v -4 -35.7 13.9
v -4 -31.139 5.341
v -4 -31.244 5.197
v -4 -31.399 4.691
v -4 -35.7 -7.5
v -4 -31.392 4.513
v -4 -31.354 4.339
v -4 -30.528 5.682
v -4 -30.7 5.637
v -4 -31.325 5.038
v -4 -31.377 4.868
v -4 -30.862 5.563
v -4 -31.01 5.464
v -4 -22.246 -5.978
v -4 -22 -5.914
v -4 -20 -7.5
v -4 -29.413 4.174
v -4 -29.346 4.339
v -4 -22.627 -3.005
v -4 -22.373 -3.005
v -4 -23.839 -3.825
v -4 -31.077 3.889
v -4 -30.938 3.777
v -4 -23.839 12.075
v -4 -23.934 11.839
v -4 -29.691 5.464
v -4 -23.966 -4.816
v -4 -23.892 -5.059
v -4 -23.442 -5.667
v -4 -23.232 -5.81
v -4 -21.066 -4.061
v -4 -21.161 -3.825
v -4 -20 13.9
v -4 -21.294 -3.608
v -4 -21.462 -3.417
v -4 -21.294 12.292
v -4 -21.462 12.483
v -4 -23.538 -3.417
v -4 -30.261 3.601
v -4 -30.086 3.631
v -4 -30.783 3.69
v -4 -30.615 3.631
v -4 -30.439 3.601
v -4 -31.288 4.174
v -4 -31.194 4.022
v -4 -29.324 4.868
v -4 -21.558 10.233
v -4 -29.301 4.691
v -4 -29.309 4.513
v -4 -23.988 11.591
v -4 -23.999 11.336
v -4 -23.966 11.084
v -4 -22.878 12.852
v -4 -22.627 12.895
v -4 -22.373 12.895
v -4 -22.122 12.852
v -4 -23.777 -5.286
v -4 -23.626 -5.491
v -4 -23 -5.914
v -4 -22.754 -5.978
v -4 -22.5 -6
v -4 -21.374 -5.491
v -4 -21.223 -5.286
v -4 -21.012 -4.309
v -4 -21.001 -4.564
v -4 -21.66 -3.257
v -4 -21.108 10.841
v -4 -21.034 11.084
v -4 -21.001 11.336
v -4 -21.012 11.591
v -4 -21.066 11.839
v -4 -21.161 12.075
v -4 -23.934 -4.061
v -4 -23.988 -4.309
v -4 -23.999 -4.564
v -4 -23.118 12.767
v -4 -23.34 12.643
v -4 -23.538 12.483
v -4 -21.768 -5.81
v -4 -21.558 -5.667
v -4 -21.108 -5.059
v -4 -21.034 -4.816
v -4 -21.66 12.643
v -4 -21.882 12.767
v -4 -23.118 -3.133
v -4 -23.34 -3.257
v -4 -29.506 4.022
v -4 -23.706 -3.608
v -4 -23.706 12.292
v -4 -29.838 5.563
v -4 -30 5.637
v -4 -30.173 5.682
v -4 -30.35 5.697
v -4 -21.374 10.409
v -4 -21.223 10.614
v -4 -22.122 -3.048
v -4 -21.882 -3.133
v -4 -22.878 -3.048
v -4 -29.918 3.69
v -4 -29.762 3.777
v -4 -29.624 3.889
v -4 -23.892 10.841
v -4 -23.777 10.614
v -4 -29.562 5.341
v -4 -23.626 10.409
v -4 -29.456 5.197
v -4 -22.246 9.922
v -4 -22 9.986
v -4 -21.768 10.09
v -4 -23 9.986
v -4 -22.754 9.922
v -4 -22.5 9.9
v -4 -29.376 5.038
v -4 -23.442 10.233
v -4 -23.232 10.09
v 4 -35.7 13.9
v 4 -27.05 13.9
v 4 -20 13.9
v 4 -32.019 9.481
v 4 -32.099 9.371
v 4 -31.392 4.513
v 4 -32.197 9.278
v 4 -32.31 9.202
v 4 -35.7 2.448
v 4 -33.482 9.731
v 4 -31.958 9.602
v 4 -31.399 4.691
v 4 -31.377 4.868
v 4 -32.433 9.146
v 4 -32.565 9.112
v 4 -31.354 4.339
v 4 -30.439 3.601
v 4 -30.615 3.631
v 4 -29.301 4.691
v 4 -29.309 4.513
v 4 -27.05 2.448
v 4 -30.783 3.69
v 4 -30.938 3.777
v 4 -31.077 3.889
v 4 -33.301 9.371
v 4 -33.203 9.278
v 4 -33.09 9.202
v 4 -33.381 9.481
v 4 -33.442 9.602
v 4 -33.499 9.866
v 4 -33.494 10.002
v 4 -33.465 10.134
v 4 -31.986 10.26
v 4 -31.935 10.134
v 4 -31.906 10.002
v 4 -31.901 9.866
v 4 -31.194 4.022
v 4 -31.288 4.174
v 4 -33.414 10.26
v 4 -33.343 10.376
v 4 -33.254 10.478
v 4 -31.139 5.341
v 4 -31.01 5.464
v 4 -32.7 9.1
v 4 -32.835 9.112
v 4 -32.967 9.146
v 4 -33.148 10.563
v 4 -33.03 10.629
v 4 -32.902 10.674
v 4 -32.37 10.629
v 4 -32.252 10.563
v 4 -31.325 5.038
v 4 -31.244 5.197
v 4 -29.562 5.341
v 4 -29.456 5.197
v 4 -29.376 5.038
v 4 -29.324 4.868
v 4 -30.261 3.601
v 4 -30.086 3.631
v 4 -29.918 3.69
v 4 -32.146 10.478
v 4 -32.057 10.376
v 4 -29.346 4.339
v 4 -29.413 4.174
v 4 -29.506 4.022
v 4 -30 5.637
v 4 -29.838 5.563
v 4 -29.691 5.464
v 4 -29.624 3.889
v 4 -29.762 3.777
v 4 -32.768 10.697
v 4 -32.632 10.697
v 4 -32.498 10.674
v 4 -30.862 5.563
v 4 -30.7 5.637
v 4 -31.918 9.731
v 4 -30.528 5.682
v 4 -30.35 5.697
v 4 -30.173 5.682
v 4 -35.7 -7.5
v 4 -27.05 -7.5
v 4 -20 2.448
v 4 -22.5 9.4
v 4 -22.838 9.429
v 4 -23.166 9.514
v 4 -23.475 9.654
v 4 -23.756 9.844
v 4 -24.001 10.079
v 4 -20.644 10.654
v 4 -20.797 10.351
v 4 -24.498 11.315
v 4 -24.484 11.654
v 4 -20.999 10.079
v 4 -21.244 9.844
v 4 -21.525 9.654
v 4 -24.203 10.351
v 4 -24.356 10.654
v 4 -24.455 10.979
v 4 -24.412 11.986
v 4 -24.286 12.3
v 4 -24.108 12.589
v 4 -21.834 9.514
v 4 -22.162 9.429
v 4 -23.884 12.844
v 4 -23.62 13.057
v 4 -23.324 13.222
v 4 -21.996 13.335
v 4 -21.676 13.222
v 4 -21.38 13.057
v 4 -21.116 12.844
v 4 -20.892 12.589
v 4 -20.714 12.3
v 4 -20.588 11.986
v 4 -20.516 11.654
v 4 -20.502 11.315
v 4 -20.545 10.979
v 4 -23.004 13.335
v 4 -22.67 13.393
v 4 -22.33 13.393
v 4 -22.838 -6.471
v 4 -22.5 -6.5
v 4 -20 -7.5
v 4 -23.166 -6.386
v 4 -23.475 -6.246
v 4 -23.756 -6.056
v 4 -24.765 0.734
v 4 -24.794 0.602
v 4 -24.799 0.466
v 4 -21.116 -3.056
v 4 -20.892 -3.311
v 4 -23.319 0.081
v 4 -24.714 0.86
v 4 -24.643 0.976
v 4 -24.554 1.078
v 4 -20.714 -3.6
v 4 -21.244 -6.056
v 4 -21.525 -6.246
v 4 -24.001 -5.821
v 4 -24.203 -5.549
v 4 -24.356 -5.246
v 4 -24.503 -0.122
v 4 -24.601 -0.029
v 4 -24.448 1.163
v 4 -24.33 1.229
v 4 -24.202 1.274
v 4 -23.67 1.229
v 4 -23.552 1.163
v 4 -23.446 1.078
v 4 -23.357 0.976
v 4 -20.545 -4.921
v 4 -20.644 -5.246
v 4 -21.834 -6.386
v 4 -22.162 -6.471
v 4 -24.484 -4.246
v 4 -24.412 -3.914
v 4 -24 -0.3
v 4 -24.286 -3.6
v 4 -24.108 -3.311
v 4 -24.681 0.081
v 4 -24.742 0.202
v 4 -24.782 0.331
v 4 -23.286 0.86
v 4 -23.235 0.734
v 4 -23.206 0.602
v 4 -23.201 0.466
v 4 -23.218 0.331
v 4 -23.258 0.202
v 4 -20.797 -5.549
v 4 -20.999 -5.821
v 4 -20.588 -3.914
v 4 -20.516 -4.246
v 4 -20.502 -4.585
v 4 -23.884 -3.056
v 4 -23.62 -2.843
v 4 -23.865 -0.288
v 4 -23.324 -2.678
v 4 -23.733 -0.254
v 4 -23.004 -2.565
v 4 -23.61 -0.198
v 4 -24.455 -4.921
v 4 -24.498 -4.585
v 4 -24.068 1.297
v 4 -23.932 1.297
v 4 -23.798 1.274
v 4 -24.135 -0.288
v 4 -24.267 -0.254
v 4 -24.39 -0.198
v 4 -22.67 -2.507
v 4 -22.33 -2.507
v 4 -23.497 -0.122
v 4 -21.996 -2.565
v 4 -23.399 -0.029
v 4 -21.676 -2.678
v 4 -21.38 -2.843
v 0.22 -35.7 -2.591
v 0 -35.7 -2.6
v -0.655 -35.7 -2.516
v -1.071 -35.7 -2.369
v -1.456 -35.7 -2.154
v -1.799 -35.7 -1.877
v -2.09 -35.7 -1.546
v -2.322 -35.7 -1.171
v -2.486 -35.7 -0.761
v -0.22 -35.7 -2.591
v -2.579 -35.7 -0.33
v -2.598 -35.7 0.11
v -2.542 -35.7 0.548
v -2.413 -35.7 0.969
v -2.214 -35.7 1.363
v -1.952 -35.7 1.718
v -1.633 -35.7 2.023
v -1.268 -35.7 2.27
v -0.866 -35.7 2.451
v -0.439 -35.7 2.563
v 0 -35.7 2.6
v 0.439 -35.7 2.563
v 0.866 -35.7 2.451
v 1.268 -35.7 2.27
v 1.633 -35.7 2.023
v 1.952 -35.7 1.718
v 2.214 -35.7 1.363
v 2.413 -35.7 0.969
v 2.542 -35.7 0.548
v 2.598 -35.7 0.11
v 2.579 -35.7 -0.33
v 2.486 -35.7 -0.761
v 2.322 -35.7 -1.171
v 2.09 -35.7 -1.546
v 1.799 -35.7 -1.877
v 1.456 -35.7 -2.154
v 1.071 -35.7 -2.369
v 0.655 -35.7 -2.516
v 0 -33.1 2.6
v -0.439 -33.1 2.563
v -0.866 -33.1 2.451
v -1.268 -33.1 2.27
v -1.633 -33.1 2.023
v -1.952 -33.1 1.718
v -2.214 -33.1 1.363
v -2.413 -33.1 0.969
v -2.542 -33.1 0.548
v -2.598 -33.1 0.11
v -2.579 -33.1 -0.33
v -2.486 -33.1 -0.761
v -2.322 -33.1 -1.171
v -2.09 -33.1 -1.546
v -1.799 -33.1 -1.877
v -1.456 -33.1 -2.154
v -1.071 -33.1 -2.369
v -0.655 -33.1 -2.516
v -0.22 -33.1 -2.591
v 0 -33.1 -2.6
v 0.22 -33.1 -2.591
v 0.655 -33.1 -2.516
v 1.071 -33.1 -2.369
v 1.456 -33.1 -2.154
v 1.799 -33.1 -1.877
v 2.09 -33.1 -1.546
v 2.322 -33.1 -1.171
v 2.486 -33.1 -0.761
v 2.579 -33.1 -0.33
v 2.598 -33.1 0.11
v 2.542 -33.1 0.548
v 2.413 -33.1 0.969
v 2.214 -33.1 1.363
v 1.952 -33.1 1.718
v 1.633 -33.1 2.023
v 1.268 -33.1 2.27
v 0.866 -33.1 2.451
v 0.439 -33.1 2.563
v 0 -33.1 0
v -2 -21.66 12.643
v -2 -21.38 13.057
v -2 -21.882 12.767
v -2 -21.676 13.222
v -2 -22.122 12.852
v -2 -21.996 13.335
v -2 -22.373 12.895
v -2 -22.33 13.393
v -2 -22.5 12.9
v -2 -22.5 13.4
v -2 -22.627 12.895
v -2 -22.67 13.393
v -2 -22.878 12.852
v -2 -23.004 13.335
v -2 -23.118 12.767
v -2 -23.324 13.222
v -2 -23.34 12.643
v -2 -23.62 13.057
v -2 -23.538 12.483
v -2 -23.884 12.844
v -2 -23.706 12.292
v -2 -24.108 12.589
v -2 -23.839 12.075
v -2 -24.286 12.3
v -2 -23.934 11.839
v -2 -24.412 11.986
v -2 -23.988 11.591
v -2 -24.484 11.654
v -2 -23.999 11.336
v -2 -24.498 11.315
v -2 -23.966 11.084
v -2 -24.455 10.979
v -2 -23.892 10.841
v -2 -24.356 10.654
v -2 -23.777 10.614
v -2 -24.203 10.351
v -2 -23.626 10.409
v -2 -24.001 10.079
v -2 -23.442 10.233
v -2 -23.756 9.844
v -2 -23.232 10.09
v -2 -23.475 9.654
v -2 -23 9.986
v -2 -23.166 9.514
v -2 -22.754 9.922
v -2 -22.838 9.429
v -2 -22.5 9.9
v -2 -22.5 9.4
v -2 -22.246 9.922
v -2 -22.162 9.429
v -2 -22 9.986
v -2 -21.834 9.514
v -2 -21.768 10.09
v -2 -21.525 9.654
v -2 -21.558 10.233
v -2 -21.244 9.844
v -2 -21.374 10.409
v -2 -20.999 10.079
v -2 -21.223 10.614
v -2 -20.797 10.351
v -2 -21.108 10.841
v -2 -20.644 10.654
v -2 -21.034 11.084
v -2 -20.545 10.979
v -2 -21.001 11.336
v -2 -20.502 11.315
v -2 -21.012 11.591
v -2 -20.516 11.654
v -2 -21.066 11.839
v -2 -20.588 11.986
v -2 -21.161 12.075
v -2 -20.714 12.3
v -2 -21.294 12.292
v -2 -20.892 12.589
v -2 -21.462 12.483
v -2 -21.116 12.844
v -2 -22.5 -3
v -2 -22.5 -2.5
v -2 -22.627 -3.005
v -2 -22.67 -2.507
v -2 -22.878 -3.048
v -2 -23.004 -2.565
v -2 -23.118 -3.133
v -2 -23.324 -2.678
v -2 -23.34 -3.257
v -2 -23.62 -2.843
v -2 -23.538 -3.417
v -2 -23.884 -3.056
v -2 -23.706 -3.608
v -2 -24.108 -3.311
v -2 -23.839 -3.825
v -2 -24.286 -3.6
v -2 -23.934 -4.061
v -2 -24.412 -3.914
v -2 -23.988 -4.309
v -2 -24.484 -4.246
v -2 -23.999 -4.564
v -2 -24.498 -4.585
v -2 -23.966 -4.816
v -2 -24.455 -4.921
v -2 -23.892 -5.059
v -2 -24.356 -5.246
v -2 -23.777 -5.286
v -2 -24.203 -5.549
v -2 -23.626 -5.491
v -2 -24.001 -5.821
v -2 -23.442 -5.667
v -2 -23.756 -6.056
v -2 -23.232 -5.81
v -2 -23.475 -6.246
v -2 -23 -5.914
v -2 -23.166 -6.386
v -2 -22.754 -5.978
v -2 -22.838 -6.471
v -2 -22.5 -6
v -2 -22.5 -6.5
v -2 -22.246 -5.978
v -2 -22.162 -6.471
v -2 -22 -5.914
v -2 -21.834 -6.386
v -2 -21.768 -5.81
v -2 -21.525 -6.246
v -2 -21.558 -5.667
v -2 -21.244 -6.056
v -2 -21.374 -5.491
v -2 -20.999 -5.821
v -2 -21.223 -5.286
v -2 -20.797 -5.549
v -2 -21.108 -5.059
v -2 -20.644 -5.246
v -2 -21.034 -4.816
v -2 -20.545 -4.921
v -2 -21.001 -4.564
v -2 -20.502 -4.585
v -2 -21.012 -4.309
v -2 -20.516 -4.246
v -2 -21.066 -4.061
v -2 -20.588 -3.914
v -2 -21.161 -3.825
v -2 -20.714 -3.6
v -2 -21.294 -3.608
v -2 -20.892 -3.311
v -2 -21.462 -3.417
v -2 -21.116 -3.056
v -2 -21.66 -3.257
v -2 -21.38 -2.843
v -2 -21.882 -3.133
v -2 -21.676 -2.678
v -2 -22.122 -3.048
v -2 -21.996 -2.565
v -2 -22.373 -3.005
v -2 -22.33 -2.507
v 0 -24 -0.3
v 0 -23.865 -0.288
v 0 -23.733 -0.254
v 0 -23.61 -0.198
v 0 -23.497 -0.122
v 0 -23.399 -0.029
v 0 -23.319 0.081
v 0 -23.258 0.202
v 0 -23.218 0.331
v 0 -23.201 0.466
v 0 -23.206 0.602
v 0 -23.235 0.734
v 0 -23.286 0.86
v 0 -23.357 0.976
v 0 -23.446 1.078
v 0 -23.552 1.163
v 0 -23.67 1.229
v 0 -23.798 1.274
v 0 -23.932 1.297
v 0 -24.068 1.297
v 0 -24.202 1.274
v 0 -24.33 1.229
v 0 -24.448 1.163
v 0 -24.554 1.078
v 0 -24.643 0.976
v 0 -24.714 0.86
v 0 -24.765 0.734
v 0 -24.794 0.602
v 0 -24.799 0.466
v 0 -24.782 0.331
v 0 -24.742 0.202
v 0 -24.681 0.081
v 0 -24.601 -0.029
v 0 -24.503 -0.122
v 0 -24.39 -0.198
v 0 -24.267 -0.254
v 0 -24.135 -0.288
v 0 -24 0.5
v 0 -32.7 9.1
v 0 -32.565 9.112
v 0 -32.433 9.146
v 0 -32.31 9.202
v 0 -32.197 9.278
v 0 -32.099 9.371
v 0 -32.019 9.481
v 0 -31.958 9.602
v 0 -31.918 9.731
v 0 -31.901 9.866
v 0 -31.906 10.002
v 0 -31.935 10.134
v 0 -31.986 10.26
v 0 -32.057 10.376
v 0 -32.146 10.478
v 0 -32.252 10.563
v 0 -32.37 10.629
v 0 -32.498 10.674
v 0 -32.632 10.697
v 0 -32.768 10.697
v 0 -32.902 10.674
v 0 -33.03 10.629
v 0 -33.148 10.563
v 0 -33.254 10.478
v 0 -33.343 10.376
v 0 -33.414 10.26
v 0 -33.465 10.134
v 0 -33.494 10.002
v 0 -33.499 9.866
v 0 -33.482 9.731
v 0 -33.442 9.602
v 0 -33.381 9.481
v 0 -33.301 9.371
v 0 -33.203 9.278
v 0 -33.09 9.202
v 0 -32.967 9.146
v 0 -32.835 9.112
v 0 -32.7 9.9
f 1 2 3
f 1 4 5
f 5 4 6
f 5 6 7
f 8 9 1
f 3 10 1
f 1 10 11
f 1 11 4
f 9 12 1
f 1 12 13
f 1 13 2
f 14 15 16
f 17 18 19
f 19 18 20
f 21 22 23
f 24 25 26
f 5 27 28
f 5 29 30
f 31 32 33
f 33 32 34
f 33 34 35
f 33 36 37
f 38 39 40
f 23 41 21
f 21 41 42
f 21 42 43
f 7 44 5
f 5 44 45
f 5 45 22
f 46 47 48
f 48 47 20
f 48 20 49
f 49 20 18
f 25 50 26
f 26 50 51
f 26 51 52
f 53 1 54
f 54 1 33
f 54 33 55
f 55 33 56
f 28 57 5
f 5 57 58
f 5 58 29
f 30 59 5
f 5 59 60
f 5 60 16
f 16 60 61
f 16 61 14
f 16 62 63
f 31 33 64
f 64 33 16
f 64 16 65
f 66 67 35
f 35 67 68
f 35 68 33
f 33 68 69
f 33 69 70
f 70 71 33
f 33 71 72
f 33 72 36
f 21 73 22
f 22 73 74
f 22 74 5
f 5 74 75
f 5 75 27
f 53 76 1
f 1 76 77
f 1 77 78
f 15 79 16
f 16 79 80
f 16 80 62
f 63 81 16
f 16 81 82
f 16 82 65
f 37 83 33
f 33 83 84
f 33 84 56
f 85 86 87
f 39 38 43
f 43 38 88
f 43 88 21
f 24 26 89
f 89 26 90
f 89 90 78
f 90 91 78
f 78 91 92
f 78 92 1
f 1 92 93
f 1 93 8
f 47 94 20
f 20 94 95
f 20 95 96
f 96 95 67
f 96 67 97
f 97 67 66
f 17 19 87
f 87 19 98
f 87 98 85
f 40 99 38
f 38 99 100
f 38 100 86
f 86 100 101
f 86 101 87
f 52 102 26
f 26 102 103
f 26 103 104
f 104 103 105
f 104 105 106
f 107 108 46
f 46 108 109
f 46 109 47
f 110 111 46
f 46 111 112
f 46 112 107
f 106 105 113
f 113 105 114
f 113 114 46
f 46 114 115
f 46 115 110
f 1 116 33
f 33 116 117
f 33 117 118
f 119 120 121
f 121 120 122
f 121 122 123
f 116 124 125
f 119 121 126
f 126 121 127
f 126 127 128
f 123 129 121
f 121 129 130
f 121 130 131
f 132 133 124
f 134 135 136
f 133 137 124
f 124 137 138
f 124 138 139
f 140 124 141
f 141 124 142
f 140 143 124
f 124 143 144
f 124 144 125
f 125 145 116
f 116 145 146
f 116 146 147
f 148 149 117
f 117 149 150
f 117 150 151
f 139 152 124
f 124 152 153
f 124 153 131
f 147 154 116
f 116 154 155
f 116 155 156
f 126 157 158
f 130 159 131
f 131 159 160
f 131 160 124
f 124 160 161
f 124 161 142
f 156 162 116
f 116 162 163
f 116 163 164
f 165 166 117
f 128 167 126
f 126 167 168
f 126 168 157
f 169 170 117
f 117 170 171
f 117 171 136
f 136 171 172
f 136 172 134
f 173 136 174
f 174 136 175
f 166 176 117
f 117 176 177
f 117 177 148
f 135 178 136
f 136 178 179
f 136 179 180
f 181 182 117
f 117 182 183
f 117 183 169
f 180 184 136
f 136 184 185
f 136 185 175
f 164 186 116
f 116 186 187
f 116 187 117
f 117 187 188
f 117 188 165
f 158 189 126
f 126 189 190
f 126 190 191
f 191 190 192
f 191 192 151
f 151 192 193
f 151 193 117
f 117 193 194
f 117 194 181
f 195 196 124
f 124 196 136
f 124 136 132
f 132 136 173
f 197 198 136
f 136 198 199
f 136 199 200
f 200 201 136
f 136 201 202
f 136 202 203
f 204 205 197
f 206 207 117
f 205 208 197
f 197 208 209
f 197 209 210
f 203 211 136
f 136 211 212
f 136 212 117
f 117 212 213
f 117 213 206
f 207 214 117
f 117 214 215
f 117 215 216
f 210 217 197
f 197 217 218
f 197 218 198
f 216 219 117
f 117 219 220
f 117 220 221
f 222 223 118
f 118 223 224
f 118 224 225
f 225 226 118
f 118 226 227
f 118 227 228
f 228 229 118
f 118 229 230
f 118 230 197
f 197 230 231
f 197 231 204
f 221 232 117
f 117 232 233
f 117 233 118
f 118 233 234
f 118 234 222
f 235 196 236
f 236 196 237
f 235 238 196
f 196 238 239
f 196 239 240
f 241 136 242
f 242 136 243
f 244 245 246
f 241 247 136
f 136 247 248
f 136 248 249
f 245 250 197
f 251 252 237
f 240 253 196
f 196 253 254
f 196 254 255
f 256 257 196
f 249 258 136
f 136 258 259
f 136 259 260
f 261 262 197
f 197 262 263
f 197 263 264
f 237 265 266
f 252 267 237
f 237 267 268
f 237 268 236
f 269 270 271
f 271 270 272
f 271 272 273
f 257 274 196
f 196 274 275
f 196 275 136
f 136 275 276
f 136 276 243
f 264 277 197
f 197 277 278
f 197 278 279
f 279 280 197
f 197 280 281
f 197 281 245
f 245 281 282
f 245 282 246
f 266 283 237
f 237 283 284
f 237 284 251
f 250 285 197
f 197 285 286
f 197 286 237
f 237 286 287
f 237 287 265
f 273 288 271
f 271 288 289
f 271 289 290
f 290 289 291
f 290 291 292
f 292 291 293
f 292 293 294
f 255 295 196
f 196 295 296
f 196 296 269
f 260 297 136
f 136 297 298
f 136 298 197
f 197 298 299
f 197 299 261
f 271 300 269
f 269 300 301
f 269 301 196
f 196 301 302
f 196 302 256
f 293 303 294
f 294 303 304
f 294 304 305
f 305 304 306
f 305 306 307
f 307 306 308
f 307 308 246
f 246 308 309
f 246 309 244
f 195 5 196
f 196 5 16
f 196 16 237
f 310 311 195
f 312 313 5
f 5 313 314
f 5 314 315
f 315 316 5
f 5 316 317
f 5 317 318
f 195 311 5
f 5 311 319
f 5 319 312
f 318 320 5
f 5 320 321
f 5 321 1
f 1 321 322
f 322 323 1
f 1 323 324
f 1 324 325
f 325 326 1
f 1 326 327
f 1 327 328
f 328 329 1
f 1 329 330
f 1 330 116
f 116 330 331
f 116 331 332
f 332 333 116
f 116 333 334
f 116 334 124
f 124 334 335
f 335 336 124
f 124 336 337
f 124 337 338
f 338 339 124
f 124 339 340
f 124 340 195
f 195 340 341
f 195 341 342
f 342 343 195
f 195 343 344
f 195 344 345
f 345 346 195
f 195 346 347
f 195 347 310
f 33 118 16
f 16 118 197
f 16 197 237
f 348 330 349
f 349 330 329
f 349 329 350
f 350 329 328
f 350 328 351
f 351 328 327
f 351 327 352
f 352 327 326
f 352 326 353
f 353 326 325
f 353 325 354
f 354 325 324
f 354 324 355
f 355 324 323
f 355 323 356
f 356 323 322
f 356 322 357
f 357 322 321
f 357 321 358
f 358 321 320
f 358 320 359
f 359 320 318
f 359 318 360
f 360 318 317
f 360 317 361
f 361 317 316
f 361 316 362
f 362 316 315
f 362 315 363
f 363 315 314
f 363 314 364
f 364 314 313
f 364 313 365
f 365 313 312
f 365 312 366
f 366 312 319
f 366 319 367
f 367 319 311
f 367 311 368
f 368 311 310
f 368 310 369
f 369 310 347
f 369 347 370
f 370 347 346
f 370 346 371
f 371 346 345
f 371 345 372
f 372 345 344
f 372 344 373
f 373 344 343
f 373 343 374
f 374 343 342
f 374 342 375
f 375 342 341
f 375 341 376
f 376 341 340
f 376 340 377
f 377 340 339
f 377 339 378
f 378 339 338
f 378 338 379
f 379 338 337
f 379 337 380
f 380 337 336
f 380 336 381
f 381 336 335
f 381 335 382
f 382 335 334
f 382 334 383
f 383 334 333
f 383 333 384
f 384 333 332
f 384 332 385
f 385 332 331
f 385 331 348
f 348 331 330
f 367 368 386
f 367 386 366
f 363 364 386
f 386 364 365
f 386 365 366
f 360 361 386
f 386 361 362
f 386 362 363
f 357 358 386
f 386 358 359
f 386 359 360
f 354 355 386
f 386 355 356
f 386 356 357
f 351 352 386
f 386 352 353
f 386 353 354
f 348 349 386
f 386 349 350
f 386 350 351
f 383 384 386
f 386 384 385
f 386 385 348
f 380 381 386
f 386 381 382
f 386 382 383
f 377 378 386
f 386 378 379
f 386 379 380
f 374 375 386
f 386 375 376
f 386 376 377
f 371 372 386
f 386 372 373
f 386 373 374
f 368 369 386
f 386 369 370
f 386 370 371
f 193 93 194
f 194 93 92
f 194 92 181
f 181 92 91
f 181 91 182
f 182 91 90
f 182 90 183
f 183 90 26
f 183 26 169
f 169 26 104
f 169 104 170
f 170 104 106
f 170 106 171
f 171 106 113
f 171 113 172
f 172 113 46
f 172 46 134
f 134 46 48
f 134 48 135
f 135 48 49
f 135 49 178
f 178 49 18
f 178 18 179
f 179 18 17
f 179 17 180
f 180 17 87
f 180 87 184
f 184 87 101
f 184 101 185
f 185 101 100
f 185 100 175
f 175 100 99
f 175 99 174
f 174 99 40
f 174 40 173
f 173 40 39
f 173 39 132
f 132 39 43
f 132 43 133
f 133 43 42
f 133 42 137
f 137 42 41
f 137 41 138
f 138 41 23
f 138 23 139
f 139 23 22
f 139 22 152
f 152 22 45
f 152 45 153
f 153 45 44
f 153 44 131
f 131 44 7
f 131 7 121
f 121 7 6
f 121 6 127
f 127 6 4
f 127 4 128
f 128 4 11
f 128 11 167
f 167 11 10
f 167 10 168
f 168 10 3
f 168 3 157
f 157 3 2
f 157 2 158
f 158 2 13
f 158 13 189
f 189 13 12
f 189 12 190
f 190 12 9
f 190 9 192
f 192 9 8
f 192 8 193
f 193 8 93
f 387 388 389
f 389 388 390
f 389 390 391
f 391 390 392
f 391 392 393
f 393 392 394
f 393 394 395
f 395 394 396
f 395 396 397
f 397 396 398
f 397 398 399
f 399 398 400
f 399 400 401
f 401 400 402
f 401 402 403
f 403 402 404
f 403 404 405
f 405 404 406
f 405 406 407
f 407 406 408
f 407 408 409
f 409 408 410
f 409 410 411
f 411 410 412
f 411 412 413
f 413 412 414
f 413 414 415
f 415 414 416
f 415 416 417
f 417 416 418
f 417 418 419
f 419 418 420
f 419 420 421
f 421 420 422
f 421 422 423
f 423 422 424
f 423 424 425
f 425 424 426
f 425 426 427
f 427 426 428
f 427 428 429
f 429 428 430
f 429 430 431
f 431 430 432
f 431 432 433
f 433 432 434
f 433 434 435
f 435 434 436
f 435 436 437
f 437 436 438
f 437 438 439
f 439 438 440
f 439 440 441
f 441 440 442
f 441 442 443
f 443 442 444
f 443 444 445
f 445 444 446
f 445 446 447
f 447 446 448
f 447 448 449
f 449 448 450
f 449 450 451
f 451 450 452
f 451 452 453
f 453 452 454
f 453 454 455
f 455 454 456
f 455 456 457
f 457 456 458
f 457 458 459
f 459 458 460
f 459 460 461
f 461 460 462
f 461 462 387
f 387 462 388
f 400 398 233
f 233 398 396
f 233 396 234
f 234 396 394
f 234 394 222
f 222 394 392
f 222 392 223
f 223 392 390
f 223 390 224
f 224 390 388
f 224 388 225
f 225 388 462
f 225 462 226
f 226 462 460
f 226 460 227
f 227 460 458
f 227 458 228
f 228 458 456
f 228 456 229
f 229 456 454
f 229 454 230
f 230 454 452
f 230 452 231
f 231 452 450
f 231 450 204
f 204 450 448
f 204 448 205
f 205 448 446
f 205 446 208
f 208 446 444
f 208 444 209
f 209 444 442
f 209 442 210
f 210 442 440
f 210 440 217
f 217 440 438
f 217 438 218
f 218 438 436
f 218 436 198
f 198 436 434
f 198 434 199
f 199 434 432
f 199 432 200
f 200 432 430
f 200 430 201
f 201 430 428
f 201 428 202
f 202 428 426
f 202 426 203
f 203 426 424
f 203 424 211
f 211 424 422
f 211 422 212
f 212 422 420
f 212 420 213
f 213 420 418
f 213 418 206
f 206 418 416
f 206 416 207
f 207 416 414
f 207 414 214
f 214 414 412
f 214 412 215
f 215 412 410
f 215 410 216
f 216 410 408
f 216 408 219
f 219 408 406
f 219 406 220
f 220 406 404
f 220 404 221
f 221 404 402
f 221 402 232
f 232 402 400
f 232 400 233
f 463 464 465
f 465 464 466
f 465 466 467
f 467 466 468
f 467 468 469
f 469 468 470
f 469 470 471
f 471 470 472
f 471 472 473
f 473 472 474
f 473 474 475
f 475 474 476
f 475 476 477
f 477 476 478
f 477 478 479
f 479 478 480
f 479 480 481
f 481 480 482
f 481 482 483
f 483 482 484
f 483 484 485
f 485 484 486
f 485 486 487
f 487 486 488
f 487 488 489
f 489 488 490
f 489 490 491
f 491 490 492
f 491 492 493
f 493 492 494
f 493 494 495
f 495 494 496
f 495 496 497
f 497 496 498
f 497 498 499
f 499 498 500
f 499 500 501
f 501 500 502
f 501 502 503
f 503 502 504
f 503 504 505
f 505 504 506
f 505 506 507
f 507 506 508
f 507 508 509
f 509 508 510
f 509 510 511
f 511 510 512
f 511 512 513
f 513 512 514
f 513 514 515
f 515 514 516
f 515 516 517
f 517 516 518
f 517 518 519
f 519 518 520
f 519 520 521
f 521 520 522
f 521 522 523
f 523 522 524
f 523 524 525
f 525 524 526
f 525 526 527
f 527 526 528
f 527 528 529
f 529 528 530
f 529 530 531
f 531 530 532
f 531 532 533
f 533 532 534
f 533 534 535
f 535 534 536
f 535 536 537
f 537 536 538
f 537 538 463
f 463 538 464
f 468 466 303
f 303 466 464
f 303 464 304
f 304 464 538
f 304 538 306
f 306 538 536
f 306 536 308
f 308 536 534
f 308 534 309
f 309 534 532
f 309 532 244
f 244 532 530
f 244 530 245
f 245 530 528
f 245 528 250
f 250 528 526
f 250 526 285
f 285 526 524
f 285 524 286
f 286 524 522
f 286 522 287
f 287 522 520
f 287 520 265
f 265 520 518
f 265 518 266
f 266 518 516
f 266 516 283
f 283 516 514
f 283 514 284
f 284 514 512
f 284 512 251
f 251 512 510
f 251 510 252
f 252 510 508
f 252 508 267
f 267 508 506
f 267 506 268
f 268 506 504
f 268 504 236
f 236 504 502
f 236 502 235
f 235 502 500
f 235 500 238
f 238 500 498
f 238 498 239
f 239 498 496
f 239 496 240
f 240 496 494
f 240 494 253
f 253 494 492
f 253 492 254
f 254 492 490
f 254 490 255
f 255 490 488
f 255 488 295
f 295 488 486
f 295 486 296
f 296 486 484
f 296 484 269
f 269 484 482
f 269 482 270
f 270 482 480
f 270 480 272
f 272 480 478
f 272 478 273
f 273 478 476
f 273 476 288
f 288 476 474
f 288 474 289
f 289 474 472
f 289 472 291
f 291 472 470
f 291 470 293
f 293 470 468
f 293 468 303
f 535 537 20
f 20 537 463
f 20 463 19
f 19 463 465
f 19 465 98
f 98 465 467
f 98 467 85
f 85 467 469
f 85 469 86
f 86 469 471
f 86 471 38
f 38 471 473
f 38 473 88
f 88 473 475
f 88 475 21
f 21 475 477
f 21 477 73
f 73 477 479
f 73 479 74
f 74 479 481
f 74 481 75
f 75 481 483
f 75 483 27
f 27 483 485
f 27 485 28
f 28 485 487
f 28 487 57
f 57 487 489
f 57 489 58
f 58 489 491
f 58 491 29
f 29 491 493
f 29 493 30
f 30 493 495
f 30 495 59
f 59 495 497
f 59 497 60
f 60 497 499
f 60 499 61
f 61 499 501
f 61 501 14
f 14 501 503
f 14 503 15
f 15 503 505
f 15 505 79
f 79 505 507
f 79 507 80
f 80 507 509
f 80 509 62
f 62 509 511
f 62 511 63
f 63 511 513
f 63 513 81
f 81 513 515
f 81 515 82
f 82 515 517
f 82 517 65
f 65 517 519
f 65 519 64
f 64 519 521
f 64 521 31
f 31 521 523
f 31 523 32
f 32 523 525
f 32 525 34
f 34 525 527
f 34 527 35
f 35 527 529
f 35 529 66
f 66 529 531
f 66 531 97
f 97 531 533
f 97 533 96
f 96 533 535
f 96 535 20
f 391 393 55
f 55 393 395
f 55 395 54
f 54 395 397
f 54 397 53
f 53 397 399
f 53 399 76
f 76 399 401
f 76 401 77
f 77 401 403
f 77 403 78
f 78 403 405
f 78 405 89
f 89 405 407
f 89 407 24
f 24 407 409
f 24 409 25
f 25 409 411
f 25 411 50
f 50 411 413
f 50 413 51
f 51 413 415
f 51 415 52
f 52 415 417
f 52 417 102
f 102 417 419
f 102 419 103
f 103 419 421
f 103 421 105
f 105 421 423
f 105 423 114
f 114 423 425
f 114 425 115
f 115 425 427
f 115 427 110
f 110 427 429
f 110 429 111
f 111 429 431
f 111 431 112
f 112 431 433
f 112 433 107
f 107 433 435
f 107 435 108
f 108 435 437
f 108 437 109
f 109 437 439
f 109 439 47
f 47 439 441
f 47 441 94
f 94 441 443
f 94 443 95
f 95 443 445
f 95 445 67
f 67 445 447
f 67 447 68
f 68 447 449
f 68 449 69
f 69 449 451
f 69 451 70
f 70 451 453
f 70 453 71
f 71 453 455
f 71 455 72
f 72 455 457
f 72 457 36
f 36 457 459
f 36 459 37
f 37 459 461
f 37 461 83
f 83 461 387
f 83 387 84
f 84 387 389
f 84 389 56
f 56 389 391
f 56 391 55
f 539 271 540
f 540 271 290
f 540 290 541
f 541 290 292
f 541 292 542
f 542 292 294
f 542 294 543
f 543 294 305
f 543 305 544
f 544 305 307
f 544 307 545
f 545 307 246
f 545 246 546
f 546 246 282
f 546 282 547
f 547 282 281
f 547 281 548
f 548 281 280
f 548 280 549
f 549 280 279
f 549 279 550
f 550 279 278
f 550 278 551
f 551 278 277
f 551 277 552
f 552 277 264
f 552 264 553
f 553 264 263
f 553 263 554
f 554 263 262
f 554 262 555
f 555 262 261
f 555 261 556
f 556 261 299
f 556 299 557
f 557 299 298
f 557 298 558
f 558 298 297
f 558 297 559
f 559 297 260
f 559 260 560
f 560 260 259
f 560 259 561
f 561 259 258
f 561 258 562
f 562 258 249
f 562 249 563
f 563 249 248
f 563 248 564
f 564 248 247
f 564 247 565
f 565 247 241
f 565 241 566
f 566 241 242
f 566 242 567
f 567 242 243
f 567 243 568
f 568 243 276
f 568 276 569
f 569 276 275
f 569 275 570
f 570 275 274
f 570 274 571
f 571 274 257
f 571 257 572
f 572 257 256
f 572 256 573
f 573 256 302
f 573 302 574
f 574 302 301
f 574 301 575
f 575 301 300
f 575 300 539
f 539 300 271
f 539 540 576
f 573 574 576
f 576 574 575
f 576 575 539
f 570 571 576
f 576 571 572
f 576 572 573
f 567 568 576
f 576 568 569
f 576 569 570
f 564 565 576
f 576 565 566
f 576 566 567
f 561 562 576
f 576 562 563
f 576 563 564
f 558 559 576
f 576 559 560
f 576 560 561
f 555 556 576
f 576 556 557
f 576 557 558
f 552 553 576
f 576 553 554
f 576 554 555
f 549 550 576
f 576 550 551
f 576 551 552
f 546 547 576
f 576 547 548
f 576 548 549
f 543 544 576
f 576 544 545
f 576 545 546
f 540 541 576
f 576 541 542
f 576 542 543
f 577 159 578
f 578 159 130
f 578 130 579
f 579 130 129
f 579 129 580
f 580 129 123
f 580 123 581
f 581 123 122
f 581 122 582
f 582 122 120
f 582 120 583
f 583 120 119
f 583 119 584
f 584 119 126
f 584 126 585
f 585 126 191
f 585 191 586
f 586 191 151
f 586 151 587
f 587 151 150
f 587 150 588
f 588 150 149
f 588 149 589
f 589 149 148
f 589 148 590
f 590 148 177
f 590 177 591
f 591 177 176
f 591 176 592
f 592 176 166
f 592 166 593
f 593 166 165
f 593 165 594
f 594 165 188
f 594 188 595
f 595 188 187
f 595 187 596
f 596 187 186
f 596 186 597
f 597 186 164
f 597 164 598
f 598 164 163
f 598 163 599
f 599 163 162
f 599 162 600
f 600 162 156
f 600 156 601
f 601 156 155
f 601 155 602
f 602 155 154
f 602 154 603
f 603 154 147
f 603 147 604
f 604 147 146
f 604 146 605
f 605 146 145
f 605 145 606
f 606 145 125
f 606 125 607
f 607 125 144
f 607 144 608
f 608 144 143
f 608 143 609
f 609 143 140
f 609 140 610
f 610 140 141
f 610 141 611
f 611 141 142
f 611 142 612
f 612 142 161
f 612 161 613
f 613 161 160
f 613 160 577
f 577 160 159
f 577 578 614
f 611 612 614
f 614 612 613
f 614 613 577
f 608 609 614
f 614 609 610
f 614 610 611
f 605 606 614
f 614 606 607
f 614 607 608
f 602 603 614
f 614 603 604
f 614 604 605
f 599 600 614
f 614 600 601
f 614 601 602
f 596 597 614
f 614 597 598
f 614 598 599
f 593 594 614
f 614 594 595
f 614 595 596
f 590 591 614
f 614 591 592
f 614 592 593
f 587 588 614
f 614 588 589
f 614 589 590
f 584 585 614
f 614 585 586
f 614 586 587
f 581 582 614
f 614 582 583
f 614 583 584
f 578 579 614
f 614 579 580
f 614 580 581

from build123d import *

# Parameters (mm, degrees)
SKETCH_1_W          = 8
SKETCH_1_H          = 21.4
EXTRUDE_1_DEPTH     = 15.7
CUT_EXTRUDE_START   = 15.7
SKETCH_1_18_R       = 2.6
CUT_EXTRUDE_1_DEPTH = 2.6
SKETCH_2_R          = 1.05
CUT_EXTRUDE_2_DEPTH = 23.443261795
SKETCH_3_R          = 2
CUT_EXTRUDE_4_DEPTH = 6
SKETCH_3_4_R        = 1.5
CUT_EXTRUDE_5_DEPTH = 23.443261795
SKETCH_4_R          = 0.8
CUT_EXTRUDE_6_DEPTH = 4
SKETCH_5_W          = 20.288493166
SKETCH_5_H          = 31.298439213
CUT_EXTRUDE_7_DEPTH = 30.490676493


with BuildPart() as part:
    # 草图1 → 凸台-拉伸1 (new body)
    with BuildSketch(Plane(origin=(0, 0, 0), x_dir=(1, 0, 0), z_dir=(0, 1, 0))):
        with Locations((0, -3.2)):
            Rectangle(SKETCH_1_W, SKETCH_1_H)
    extrude(amount=EXTRUDE_1_DEPTH)

    # 草图1<18> → 切除-拉伸1 (cut)
    with BuildSketch(Plane(origin=(0, 0, 0), x_dir=(1, 0, 0), z_dir=(0, 1, 0)).offset(CUT_EXTRUDE_START)):
        with Locations(Location((0, 0, 0), (0, 0, 90))):
            Circle(SKETCH_1_18_R)
    extrude(amount=-CUT_EXTRUDE_1_DEPTH, mode=Mode.SUBTRACT)

    # 草图2 → 切除-拉伸2 (cut, through all)
    with BuildSketch(Plane.ZY.offset(4)):
        with Locations((4.646826988, 10.35029737)):
            Circle(SKETCH_2_R)
    extrude(amount=-CUT_EXTRUDE_2_DEPTH, mode=Mode.SUBTRACT)

    # 草图3 → 切除-拉伸4 (cut)
    with BuildSketch(Plane(origin=(4, 0, 0), x_dir=(0, 0, -1), z_dir=(1, 0, 0))):
        with Locations((4.5, 2.5)):
            Circle(SKETCH_3_R)
        with Locations((-11.4, 2.5)):
            Circle(SKETCH_3_R)
    extrude(amount=-CUT_EXTRUDE_4_DEPTH, mode=Mode.SUBTRACT)

    # 草图3<4> → 切除-拉伸5 (cut, through all)
    with BuildSketch(Plane(origin=(4, 0, 0), x_dir=(0, 0, -1), z_dir=(1, 0, 0))):
        with Locations((4.5, 2.5)):
            Circle(SKETCH_3_4_R)
        with Locations((-11.4, 2.5)):
            Circle(SKETCH_3_4_R)
    extrude(amount=-CUT_EXTRUDE_5_DEPTH, mode=Mode.SUBTRACT)

    # 草图4 → 切除-拉伸6 (cut)
    with BuildSketch(Plane(origin=(4, 0, 0), x_dir=(0, 0, -1), z_dir=(1, 0, 0))):
        with Locations((-0.5, 4)):
            Circle(SKETCH_4_R)
        with Locations((-9.9, 12.7)):
            Circle(SKETCH_4_R)
    extrude(amount=-CUT_EXTRUDE_6_DEPTH, mode=Mode.SUBTRACT)


with BuildPart() as body_2:
    # 镜向1: mirrored copy
    add(part.part.mirror(Plane.ZX.offset(-10)))


with BuildPart() as part_1:
    add(part.part)

    # 草图5 → 切除-拉伸7 (cut, through all)
    with BuildSketch(Plane(origin=(0, -10, 0), x_dir=(1, 0, 0), z_dir=(0, 1, 0))):
        with Locations((1.793447893, -5.785280747)):
            Rectangle(SKETCH_5_W, SKETCH_5_H)
    extrude(amount=CUT_EXTRUDE_7_DEPTH, mode=Mode.SUBTRACT)


solid = body_2.part
